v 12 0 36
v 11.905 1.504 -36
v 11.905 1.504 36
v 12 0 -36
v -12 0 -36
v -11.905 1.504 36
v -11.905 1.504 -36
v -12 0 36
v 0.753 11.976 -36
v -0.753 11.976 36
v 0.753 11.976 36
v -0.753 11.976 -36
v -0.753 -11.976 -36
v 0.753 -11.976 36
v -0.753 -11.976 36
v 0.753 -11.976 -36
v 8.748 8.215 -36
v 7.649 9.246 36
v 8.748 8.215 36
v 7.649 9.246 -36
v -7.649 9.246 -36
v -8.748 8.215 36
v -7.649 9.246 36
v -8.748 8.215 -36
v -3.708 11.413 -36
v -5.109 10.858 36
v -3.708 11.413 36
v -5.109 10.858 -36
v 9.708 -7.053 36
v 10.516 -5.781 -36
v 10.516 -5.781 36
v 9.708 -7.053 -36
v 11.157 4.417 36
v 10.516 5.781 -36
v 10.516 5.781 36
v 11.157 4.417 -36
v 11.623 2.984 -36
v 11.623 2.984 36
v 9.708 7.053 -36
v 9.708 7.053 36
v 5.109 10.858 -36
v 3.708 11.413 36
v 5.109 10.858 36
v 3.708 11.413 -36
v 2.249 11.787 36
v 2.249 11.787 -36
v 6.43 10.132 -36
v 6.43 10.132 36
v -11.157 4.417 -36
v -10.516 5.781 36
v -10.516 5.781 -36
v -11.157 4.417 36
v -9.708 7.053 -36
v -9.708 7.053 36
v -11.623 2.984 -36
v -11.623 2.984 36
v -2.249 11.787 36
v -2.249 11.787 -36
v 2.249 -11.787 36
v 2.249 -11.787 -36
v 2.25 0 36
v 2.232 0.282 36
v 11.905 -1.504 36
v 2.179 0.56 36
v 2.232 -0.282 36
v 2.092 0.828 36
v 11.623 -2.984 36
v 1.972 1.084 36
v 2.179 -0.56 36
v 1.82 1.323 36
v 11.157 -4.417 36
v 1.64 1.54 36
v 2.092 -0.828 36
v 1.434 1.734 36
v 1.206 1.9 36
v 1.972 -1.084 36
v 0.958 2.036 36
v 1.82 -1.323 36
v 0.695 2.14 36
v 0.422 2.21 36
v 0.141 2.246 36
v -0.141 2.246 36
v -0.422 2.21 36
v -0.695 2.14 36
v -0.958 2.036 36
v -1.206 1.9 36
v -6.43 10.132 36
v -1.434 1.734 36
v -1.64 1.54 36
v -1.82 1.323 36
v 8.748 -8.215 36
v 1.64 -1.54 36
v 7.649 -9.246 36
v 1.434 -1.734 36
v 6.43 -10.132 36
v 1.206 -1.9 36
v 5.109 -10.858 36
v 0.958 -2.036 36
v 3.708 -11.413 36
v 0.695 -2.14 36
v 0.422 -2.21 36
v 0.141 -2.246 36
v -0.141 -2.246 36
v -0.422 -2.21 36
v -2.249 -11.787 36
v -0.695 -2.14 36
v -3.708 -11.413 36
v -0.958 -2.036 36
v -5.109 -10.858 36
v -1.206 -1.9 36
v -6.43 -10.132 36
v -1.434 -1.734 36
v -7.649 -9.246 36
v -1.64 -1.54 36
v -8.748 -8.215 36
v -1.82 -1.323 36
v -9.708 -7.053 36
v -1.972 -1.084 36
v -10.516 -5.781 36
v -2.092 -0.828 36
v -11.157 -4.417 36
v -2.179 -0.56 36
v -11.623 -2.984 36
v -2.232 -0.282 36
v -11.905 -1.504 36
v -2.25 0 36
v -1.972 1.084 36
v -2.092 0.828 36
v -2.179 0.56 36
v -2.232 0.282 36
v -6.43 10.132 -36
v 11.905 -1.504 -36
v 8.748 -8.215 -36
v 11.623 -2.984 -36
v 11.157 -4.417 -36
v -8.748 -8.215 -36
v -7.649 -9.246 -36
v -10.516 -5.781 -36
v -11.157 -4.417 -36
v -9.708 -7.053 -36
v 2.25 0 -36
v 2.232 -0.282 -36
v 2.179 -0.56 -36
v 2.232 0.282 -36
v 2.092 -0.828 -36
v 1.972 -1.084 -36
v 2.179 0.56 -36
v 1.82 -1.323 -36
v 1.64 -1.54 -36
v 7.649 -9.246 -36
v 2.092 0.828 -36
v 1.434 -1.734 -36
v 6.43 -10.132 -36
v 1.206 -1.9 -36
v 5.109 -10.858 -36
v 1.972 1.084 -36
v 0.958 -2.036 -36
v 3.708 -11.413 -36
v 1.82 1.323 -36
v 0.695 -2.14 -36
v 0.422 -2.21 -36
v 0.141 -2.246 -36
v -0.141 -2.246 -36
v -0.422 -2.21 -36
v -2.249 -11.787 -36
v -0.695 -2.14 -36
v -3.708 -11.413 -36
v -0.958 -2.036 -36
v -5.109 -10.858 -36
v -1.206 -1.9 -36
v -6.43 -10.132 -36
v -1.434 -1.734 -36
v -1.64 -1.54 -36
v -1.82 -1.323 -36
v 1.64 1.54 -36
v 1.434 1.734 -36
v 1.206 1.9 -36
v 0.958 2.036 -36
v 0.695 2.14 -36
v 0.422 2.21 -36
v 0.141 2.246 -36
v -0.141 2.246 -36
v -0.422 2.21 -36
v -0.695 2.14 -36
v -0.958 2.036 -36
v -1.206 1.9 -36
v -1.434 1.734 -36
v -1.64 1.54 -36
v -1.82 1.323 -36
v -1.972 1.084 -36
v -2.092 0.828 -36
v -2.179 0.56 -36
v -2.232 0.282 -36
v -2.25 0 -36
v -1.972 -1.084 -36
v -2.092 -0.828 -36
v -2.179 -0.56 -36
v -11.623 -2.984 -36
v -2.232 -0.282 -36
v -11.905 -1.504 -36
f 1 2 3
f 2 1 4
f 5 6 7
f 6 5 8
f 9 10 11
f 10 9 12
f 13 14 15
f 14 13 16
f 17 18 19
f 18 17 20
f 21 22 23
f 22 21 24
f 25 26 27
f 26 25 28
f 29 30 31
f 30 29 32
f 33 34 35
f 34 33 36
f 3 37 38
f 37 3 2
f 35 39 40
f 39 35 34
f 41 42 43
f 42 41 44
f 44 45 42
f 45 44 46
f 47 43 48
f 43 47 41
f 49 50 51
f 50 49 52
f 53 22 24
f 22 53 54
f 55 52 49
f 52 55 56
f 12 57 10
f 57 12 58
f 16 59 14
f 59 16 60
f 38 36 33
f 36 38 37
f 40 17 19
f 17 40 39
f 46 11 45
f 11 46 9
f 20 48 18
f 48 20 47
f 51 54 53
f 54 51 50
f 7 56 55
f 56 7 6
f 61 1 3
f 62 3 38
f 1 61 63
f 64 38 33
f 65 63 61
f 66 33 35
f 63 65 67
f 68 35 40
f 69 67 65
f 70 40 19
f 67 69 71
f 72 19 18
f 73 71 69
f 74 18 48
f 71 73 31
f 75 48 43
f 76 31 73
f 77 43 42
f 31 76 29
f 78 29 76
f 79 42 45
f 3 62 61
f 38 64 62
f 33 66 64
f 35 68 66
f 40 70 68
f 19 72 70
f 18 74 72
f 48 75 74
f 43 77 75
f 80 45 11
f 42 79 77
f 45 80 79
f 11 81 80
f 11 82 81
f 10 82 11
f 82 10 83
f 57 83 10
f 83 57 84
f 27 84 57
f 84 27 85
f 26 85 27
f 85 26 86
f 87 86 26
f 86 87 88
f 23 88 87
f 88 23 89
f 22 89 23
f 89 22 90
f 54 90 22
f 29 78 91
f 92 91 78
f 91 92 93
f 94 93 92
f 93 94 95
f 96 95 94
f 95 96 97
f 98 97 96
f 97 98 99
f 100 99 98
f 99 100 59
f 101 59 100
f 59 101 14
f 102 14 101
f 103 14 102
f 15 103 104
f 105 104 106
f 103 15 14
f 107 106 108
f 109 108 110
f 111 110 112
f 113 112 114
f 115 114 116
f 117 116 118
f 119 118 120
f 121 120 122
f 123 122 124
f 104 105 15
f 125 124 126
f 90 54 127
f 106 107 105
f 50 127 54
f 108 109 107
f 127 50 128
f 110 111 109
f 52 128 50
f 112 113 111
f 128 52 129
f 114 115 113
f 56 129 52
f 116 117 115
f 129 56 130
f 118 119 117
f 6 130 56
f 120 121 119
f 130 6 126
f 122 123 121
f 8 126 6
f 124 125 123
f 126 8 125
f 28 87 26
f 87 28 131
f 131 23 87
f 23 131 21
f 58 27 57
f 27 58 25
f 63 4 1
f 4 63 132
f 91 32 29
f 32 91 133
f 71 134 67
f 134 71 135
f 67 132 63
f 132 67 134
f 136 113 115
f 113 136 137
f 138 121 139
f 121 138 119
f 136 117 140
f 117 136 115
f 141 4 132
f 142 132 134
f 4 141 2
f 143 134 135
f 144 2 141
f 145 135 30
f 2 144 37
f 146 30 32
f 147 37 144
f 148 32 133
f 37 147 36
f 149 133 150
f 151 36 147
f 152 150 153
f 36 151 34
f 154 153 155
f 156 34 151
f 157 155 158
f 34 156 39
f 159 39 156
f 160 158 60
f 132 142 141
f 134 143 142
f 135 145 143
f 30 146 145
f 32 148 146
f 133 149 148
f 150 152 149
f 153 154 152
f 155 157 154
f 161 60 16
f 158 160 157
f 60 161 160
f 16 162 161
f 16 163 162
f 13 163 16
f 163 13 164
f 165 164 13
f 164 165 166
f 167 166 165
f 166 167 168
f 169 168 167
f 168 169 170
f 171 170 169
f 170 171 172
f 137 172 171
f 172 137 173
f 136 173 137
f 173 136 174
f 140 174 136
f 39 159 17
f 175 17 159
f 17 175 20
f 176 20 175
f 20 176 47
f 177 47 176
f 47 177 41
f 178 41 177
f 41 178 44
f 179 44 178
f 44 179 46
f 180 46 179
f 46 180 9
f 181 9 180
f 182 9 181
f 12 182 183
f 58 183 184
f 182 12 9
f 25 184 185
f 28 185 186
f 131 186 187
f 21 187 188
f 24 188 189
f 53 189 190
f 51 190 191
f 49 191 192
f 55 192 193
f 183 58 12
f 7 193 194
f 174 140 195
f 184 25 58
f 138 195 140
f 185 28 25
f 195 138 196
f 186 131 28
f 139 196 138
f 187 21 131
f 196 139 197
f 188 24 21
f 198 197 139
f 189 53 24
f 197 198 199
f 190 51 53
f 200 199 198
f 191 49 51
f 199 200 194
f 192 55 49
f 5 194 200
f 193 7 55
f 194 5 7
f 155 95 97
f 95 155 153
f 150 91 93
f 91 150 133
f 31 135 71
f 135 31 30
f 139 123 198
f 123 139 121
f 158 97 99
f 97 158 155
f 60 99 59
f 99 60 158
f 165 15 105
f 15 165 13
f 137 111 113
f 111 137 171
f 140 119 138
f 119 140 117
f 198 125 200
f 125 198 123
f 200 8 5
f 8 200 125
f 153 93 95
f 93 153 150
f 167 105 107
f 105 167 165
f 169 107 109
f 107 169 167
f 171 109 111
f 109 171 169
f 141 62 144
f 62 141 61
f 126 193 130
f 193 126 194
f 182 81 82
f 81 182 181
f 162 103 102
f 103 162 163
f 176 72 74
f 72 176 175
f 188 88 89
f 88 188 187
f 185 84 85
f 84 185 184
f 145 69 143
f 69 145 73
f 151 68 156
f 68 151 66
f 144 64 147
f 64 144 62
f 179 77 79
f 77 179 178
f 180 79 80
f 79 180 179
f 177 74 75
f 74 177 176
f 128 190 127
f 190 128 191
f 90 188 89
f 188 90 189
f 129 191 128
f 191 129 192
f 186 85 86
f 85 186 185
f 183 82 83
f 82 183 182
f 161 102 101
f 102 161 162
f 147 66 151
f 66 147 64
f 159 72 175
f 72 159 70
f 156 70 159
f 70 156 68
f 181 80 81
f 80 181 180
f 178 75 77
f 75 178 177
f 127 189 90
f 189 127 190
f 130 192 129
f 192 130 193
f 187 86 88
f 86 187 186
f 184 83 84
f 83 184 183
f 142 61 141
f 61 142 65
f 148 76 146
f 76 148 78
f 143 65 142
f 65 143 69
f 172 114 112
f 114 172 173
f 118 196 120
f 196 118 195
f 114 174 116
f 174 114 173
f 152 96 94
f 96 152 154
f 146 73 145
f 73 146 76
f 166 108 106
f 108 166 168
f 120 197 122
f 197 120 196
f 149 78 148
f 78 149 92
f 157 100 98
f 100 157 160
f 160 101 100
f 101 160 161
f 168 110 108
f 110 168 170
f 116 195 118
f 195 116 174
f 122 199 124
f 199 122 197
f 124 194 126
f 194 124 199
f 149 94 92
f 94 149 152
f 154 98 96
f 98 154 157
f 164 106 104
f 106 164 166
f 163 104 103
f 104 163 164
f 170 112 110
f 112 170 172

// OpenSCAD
$fn = 50;


difference() {
	union() {
		translate(v = [0, 0, -36.0000000000]) {
			cylinder(h = 72, r = 12.0000000000);
		}
	}
	union() {
		translate(v = [0, 0, -100.0000000000]) {
			cylinder(h = 200, r = 2.2500000000);
		}
	}
}
